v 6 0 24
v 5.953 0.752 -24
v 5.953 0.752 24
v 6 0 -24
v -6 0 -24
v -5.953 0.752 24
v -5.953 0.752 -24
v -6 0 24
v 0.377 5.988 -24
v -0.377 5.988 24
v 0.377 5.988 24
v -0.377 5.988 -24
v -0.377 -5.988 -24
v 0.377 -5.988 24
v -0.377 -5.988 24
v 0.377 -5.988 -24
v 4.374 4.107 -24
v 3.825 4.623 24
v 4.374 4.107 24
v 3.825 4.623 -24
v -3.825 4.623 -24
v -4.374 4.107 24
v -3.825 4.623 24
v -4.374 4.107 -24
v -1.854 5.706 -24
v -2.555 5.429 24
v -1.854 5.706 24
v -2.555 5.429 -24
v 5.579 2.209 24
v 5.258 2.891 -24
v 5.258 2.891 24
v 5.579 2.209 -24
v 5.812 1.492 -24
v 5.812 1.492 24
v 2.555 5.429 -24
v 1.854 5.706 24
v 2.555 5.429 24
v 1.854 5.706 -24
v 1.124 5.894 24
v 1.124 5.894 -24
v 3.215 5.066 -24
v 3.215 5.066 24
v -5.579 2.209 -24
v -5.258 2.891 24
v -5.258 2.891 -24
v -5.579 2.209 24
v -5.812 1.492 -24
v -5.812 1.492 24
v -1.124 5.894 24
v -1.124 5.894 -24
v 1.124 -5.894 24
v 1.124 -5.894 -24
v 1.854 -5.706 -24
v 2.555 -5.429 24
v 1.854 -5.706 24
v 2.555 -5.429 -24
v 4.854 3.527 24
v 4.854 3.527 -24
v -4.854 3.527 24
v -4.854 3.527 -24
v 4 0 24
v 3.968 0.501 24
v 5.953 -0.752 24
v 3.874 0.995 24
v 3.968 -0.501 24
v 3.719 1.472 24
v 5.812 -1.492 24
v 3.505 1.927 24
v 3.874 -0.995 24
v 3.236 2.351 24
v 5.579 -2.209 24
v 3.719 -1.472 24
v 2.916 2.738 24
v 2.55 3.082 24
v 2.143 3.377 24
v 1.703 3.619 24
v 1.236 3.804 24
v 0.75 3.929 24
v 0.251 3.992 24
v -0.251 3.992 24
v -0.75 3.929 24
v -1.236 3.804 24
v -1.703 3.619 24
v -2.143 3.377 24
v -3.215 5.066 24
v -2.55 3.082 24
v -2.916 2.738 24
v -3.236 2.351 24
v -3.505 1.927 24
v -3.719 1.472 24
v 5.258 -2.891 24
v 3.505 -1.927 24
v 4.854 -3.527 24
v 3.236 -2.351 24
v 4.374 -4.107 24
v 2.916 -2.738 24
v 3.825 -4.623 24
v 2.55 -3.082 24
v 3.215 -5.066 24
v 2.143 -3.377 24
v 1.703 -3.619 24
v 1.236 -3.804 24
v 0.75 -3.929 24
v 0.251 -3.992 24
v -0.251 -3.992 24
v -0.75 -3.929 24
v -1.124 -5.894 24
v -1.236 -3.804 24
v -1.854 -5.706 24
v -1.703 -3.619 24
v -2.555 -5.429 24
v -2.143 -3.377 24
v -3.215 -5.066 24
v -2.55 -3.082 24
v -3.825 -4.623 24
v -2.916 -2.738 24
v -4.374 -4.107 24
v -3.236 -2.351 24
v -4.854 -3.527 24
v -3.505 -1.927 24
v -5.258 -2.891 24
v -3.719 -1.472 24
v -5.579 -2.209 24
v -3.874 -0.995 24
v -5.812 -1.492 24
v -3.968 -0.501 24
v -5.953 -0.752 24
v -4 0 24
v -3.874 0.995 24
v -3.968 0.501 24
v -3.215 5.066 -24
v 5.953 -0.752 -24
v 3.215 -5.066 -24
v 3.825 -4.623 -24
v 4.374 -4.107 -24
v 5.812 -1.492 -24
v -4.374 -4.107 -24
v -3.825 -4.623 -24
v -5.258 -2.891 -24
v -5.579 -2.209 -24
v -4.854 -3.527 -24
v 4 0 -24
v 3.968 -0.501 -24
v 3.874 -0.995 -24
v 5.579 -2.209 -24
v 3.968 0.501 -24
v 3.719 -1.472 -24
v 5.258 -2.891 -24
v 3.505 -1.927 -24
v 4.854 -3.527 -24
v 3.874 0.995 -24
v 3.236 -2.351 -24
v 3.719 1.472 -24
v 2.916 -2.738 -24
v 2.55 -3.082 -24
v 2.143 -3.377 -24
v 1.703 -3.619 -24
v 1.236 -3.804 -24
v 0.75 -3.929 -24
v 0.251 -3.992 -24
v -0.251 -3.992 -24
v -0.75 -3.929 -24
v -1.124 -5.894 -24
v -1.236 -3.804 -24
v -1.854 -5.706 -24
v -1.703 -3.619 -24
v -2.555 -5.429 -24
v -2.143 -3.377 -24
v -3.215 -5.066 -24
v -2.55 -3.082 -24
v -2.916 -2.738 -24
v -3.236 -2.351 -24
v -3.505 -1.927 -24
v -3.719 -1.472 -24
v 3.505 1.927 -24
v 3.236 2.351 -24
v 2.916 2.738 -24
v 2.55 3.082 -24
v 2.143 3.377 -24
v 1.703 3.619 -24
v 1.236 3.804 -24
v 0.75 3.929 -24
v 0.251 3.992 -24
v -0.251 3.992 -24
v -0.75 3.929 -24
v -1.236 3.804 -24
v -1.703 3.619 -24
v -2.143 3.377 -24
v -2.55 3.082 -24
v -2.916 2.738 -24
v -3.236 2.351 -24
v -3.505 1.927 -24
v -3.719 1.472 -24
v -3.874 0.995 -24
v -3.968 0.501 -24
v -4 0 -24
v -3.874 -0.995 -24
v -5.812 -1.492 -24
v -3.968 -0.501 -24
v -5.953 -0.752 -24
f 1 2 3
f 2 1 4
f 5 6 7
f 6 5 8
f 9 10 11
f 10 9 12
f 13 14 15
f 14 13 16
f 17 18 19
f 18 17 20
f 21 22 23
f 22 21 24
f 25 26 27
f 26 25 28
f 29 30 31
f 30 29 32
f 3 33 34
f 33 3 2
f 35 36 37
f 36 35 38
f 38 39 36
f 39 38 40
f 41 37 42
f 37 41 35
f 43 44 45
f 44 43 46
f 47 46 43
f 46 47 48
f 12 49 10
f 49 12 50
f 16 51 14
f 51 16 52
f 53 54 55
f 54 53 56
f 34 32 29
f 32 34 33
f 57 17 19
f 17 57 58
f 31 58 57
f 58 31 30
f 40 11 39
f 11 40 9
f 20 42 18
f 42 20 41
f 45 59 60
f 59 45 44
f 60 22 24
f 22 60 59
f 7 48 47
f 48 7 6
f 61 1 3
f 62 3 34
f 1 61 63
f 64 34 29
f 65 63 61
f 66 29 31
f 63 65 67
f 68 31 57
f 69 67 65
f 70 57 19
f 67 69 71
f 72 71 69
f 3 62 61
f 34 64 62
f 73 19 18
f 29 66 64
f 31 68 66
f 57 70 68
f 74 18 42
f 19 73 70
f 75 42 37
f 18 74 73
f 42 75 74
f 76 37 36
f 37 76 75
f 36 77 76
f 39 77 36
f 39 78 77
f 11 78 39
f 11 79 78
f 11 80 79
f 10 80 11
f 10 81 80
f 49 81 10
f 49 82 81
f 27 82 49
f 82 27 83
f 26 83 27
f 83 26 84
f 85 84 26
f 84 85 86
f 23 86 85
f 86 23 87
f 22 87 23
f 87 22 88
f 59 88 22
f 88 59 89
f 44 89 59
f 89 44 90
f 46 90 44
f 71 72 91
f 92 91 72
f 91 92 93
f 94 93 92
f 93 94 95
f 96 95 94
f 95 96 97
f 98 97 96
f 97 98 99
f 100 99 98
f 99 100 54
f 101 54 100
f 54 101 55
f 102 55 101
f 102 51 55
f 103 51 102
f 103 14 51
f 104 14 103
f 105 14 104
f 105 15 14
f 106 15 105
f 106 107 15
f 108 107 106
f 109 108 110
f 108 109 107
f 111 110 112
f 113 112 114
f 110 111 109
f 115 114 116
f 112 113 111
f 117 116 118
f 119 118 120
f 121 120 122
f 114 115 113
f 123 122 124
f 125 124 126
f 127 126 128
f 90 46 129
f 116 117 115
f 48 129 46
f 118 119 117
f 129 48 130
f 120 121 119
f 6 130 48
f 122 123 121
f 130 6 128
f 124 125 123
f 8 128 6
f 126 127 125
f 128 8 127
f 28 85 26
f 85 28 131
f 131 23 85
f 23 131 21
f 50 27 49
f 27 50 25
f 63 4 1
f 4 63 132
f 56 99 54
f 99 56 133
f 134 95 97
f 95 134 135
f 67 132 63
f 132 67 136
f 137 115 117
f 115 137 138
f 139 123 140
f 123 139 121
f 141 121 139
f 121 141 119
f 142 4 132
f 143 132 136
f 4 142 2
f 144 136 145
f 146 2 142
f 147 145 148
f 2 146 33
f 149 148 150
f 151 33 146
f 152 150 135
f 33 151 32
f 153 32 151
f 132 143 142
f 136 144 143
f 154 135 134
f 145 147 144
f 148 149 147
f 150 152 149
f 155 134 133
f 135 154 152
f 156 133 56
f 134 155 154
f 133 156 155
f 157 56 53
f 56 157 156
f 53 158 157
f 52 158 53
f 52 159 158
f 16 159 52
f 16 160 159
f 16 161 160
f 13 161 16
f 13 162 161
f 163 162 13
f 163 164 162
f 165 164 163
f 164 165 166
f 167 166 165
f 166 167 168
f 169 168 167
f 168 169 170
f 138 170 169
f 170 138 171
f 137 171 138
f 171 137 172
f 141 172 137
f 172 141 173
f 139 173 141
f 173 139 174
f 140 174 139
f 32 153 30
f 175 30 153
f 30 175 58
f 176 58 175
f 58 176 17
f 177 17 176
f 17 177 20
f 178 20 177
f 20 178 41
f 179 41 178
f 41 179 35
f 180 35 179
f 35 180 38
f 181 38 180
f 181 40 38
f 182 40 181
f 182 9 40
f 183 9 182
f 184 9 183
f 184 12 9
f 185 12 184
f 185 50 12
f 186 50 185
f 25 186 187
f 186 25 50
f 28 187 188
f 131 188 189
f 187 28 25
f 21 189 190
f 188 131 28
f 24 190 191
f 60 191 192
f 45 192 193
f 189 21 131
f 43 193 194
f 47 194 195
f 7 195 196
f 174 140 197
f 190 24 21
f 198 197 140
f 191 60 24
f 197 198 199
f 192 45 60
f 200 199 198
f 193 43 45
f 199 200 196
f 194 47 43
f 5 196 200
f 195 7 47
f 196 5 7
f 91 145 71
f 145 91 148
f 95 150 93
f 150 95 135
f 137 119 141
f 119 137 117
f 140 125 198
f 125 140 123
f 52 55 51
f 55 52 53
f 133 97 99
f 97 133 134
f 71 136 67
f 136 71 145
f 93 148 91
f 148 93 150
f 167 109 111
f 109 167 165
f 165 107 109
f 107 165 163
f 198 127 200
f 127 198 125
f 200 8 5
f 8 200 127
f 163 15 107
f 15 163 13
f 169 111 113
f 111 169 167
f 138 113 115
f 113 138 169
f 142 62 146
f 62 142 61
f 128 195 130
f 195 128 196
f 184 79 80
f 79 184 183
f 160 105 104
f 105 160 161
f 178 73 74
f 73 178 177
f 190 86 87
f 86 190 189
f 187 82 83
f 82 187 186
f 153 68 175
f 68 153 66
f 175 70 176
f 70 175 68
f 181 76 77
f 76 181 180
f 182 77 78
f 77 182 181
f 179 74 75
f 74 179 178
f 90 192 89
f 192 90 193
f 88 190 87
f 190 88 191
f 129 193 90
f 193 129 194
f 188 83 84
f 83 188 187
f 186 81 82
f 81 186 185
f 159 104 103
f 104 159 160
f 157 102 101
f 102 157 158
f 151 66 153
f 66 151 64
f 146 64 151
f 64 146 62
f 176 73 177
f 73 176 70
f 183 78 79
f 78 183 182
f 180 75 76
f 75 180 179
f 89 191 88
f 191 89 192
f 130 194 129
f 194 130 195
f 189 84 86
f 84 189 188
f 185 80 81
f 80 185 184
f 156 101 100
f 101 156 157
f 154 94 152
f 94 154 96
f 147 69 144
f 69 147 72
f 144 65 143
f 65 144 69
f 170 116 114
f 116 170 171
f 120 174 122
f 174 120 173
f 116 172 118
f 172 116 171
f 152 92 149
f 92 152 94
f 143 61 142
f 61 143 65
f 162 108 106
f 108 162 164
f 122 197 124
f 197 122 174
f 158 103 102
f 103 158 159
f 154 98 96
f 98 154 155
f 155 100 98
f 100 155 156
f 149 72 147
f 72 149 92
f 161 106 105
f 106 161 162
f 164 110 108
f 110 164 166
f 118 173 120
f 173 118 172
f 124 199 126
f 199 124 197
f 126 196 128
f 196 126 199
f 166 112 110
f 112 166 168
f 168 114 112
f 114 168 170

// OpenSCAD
$fn = 50;


difference() {
	union() {
		translate(v = [0, 0, -24.0000000000]) {
			cylinder(h = 48, r = 6.0000000000);
		}
	}
	union() {
		translate(v = [0, 0, -100.0000000000]) {
			cylinder(h = 200, r = 4);
		}
	}
}
